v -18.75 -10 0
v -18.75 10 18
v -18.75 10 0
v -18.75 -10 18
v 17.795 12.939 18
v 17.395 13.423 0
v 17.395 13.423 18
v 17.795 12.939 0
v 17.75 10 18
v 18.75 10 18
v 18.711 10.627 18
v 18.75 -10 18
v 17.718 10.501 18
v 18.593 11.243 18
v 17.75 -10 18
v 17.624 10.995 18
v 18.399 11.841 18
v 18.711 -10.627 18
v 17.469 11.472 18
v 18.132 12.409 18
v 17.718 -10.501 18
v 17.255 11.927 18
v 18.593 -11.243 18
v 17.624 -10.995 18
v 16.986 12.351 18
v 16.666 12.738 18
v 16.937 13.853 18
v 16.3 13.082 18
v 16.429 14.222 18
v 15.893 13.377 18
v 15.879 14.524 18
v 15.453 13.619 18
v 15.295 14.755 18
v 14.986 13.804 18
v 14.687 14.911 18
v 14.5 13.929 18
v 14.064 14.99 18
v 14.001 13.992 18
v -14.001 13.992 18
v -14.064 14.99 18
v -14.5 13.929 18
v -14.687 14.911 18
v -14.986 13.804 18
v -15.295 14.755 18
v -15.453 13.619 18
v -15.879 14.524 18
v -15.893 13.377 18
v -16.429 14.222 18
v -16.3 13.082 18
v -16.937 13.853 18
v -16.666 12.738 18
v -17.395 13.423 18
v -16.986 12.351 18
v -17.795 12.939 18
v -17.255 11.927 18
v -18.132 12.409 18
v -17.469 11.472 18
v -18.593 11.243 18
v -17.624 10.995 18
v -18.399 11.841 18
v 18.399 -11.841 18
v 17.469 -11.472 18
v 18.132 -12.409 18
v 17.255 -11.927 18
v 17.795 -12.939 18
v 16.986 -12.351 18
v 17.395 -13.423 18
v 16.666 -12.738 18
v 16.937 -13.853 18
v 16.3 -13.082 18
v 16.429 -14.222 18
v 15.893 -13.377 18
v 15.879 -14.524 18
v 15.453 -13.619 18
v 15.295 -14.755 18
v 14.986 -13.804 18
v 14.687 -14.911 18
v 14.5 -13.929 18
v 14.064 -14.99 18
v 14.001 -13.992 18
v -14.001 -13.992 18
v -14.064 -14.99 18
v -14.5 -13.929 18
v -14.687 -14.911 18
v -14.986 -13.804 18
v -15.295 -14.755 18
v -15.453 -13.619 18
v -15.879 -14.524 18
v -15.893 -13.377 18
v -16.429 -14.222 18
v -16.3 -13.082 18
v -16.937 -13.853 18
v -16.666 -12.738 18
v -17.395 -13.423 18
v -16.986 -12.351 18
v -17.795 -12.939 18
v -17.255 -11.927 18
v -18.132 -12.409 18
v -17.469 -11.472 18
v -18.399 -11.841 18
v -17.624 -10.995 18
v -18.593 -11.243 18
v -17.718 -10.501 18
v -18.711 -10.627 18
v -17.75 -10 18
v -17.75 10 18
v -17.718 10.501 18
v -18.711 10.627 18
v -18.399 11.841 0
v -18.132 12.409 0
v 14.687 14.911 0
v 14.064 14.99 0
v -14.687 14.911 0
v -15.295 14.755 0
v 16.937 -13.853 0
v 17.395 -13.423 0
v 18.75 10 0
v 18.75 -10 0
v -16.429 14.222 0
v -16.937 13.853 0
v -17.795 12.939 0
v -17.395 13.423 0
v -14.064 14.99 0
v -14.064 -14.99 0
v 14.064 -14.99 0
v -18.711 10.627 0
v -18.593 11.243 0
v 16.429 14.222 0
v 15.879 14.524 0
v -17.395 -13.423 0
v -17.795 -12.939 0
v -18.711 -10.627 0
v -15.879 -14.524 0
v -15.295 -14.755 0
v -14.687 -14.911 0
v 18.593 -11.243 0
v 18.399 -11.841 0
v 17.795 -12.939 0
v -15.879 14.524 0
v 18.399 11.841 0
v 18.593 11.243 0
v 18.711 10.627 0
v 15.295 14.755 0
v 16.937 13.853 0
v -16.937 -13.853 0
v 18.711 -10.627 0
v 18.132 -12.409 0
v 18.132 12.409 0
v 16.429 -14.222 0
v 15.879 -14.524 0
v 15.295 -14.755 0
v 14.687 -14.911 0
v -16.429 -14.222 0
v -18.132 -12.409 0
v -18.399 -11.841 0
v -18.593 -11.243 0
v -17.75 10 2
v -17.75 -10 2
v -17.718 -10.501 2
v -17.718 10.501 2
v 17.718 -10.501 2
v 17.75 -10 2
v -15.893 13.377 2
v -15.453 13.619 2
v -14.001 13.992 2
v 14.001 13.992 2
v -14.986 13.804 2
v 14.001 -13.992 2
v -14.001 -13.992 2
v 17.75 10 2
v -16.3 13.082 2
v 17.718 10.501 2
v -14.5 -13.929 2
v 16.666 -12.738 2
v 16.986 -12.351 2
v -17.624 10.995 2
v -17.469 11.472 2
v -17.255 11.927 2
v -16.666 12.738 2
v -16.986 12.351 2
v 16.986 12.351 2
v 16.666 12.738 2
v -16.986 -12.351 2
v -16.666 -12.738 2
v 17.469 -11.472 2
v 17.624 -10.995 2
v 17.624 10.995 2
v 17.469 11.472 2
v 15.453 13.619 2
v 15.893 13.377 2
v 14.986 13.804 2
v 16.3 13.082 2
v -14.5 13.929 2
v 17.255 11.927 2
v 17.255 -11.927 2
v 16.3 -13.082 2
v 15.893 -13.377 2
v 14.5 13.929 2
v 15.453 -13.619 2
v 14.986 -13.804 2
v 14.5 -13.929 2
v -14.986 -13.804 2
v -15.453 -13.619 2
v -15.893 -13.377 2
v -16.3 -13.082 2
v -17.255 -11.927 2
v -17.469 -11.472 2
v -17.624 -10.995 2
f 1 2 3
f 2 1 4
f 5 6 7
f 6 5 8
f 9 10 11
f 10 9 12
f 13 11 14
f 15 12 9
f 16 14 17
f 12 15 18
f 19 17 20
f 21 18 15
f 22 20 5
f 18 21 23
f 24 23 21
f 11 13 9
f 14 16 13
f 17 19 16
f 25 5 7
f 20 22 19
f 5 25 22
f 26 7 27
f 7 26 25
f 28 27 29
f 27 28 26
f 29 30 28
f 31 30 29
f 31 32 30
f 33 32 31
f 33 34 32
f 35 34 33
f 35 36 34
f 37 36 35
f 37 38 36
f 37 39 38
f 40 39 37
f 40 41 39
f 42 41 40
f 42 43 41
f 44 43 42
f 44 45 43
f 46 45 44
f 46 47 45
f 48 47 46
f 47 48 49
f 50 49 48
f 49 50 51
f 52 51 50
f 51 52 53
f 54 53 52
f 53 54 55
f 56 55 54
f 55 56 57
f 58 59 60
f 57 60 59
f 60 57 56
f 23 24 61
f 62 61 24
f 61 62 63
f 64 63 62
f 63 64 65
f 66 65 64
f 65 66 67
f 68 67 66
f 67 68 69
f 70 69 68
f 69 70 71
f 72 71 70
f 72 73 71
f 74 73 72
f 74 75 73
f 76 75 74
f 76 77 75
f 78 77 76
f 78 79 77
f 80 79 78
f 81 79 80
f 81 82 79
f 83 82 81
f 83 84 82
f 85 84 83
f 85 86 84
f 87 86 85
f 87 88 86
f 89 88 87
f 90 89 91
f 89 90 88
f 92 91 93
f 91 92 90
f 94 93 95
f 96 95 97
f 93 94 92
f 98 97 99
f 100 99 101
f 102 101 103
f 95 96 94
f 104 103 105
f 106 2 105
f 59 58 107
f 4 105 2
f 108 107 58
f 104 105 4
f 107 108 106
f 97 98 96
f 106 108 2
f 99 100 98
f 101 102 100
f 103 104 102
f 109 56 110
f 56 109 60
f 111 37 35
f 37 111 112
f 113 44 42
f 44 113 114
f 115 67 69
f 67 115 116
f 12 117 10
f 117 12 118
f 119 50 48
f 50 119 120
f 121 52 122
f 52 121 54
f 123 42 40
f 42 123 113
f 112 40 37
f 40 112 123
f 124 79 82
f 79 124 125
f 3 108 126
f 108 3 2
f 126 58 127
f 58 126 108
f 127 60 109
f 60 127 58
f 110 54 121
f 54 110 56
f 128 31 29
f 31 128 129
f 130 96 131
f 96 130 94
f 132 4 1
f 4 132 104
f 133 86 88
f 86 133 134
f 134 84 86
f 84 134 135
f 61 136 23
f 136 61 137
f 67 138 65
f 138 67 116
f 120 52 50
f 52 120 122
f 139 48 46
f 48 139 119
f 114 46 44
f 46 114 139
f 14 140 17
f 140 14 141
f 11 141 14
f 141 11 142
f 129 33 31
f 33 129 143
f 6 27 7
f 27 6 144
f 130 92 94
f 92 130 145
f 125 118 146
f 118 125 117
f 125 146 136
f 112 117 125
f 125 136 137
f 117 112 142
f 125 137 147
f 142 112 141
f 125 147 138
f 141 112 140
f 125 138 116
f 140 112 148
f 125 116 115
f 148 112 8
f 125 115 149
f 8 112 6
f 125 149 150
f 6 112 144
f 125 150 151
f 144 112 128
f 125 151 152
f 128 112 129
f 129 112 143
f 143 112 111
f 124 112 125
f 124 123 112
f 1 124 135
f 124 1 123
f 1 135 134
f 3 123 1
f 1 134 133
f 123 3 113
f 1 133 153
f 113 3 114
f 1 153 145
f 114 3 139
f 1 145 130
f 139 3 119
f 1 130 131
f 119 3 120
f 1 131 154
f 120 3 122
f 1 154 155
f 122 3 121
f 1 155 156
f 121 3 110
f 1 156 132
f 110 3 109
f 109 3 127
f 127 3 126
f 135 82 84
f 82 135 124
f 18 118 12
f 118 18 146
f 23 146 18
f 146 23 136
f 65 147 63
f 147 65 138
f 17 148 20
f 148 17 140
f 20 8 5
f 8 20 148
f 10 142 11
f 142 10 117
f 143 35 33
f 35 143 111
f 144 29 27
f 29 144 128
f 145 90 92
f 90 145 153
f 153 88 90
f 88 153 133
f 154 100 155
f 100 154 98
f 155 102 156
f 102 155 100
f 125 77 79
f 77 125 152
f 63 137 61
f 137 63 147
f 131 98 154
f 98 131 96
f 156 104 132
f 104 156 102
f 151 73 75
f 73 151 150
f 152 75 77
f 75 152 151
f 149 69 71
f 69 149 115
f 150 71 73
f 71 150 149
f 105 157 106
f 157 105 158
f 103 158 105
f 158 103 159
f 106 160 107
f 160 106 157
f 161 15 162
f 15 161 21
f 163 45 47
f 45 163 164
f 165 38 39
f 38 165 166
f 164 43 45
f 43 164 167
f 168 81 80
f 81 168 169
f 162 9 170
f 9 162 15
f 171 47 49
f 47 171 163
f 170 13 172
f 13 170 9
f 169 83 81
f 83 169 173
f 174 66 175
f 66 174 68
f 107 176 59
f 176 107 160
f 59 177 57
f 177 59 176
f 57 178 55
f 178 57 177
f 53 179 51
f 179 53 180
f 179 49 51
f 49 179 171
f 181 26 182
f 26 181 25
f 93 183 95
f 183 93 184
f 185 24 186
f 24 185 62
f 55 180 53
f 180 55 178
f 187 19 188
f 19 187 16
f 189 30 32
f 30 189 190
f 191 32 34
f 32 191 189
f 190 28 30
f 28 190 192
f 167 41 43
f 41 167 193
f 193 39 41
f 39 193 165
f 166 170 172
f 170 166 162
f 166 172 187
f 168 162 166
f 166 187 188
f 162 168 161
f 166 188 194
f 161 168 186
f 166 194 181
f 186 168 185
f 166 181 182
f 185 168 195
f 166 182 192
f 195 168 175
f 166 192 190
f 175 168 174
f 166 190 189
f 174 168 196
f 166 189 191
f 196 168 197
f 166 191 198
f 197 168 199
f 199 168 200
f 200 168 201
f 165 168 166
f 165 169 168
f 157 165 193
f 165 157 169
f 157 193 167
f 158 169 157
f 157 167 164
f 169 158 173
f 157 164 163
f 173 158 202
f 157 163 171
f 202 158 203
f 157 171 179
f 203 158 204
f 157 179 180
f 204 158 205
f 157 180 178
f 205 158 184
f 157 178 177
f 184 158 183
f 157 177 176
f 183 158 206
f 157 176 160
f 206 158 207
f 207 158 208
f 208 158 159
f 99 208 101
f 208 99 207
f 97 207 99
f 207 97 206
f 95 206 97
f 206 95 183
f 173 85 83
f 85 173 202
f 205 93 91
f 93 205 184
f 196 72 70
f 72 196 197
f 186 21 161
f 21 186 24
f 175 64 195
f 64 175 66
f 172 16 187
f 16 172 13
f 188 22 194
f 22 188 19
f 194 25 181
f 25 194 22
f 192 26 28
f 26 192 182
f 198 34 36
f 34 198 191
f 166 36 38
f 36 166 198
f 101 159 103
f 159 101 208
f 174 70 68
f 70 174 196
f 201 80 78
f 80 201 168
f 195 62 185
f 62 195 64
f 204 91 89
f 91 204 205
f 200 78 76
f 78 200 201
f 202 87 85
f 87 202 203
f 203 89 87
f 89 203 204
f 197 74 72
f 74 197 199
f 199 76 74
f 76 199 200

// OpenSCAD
$fn = 50;


difference() {
	union() {
		hull() {
			translate(v = [-13.7500000000, 10.0000000000, 0]) {
				cylinder(h = 18, r = 5);
			}
			translate(v = [13.7500000000, 10.0000000000, 0]) {
				cylinder(h = 18, r = 5);
			}
			translate(v = [-13.7500000000, -10.0000000000, 0]) {
				cylinder(h = 18, r = 5);
			}
			translate(v = [13.7500000000, -10.0000000000, 0]) {
				cylinder(h = 18, r = 5);
			}
		}
	}
	union() {
		translate(v = [0, 0, 2]) {
			#hull() {
				translate(v = [-13.7500000000, 10.0000000000, 0]) {
					cylinder(h = 16, r = 4);
				}
				translate(v = [13.7500000000, 10.0000000000, 0]) {
					cylinder(h = 16, r = 4);
				}
				translate(v = [-13.7500000000, -10.0000000000, 0]) {
					cylinder(h = 16, r = 4);
				}
				translate(v = [13.7500000000, -10.0000000000, 0]) {
					cylinder(h = 16, r = 4);
				}
			}
		}
	}
}
